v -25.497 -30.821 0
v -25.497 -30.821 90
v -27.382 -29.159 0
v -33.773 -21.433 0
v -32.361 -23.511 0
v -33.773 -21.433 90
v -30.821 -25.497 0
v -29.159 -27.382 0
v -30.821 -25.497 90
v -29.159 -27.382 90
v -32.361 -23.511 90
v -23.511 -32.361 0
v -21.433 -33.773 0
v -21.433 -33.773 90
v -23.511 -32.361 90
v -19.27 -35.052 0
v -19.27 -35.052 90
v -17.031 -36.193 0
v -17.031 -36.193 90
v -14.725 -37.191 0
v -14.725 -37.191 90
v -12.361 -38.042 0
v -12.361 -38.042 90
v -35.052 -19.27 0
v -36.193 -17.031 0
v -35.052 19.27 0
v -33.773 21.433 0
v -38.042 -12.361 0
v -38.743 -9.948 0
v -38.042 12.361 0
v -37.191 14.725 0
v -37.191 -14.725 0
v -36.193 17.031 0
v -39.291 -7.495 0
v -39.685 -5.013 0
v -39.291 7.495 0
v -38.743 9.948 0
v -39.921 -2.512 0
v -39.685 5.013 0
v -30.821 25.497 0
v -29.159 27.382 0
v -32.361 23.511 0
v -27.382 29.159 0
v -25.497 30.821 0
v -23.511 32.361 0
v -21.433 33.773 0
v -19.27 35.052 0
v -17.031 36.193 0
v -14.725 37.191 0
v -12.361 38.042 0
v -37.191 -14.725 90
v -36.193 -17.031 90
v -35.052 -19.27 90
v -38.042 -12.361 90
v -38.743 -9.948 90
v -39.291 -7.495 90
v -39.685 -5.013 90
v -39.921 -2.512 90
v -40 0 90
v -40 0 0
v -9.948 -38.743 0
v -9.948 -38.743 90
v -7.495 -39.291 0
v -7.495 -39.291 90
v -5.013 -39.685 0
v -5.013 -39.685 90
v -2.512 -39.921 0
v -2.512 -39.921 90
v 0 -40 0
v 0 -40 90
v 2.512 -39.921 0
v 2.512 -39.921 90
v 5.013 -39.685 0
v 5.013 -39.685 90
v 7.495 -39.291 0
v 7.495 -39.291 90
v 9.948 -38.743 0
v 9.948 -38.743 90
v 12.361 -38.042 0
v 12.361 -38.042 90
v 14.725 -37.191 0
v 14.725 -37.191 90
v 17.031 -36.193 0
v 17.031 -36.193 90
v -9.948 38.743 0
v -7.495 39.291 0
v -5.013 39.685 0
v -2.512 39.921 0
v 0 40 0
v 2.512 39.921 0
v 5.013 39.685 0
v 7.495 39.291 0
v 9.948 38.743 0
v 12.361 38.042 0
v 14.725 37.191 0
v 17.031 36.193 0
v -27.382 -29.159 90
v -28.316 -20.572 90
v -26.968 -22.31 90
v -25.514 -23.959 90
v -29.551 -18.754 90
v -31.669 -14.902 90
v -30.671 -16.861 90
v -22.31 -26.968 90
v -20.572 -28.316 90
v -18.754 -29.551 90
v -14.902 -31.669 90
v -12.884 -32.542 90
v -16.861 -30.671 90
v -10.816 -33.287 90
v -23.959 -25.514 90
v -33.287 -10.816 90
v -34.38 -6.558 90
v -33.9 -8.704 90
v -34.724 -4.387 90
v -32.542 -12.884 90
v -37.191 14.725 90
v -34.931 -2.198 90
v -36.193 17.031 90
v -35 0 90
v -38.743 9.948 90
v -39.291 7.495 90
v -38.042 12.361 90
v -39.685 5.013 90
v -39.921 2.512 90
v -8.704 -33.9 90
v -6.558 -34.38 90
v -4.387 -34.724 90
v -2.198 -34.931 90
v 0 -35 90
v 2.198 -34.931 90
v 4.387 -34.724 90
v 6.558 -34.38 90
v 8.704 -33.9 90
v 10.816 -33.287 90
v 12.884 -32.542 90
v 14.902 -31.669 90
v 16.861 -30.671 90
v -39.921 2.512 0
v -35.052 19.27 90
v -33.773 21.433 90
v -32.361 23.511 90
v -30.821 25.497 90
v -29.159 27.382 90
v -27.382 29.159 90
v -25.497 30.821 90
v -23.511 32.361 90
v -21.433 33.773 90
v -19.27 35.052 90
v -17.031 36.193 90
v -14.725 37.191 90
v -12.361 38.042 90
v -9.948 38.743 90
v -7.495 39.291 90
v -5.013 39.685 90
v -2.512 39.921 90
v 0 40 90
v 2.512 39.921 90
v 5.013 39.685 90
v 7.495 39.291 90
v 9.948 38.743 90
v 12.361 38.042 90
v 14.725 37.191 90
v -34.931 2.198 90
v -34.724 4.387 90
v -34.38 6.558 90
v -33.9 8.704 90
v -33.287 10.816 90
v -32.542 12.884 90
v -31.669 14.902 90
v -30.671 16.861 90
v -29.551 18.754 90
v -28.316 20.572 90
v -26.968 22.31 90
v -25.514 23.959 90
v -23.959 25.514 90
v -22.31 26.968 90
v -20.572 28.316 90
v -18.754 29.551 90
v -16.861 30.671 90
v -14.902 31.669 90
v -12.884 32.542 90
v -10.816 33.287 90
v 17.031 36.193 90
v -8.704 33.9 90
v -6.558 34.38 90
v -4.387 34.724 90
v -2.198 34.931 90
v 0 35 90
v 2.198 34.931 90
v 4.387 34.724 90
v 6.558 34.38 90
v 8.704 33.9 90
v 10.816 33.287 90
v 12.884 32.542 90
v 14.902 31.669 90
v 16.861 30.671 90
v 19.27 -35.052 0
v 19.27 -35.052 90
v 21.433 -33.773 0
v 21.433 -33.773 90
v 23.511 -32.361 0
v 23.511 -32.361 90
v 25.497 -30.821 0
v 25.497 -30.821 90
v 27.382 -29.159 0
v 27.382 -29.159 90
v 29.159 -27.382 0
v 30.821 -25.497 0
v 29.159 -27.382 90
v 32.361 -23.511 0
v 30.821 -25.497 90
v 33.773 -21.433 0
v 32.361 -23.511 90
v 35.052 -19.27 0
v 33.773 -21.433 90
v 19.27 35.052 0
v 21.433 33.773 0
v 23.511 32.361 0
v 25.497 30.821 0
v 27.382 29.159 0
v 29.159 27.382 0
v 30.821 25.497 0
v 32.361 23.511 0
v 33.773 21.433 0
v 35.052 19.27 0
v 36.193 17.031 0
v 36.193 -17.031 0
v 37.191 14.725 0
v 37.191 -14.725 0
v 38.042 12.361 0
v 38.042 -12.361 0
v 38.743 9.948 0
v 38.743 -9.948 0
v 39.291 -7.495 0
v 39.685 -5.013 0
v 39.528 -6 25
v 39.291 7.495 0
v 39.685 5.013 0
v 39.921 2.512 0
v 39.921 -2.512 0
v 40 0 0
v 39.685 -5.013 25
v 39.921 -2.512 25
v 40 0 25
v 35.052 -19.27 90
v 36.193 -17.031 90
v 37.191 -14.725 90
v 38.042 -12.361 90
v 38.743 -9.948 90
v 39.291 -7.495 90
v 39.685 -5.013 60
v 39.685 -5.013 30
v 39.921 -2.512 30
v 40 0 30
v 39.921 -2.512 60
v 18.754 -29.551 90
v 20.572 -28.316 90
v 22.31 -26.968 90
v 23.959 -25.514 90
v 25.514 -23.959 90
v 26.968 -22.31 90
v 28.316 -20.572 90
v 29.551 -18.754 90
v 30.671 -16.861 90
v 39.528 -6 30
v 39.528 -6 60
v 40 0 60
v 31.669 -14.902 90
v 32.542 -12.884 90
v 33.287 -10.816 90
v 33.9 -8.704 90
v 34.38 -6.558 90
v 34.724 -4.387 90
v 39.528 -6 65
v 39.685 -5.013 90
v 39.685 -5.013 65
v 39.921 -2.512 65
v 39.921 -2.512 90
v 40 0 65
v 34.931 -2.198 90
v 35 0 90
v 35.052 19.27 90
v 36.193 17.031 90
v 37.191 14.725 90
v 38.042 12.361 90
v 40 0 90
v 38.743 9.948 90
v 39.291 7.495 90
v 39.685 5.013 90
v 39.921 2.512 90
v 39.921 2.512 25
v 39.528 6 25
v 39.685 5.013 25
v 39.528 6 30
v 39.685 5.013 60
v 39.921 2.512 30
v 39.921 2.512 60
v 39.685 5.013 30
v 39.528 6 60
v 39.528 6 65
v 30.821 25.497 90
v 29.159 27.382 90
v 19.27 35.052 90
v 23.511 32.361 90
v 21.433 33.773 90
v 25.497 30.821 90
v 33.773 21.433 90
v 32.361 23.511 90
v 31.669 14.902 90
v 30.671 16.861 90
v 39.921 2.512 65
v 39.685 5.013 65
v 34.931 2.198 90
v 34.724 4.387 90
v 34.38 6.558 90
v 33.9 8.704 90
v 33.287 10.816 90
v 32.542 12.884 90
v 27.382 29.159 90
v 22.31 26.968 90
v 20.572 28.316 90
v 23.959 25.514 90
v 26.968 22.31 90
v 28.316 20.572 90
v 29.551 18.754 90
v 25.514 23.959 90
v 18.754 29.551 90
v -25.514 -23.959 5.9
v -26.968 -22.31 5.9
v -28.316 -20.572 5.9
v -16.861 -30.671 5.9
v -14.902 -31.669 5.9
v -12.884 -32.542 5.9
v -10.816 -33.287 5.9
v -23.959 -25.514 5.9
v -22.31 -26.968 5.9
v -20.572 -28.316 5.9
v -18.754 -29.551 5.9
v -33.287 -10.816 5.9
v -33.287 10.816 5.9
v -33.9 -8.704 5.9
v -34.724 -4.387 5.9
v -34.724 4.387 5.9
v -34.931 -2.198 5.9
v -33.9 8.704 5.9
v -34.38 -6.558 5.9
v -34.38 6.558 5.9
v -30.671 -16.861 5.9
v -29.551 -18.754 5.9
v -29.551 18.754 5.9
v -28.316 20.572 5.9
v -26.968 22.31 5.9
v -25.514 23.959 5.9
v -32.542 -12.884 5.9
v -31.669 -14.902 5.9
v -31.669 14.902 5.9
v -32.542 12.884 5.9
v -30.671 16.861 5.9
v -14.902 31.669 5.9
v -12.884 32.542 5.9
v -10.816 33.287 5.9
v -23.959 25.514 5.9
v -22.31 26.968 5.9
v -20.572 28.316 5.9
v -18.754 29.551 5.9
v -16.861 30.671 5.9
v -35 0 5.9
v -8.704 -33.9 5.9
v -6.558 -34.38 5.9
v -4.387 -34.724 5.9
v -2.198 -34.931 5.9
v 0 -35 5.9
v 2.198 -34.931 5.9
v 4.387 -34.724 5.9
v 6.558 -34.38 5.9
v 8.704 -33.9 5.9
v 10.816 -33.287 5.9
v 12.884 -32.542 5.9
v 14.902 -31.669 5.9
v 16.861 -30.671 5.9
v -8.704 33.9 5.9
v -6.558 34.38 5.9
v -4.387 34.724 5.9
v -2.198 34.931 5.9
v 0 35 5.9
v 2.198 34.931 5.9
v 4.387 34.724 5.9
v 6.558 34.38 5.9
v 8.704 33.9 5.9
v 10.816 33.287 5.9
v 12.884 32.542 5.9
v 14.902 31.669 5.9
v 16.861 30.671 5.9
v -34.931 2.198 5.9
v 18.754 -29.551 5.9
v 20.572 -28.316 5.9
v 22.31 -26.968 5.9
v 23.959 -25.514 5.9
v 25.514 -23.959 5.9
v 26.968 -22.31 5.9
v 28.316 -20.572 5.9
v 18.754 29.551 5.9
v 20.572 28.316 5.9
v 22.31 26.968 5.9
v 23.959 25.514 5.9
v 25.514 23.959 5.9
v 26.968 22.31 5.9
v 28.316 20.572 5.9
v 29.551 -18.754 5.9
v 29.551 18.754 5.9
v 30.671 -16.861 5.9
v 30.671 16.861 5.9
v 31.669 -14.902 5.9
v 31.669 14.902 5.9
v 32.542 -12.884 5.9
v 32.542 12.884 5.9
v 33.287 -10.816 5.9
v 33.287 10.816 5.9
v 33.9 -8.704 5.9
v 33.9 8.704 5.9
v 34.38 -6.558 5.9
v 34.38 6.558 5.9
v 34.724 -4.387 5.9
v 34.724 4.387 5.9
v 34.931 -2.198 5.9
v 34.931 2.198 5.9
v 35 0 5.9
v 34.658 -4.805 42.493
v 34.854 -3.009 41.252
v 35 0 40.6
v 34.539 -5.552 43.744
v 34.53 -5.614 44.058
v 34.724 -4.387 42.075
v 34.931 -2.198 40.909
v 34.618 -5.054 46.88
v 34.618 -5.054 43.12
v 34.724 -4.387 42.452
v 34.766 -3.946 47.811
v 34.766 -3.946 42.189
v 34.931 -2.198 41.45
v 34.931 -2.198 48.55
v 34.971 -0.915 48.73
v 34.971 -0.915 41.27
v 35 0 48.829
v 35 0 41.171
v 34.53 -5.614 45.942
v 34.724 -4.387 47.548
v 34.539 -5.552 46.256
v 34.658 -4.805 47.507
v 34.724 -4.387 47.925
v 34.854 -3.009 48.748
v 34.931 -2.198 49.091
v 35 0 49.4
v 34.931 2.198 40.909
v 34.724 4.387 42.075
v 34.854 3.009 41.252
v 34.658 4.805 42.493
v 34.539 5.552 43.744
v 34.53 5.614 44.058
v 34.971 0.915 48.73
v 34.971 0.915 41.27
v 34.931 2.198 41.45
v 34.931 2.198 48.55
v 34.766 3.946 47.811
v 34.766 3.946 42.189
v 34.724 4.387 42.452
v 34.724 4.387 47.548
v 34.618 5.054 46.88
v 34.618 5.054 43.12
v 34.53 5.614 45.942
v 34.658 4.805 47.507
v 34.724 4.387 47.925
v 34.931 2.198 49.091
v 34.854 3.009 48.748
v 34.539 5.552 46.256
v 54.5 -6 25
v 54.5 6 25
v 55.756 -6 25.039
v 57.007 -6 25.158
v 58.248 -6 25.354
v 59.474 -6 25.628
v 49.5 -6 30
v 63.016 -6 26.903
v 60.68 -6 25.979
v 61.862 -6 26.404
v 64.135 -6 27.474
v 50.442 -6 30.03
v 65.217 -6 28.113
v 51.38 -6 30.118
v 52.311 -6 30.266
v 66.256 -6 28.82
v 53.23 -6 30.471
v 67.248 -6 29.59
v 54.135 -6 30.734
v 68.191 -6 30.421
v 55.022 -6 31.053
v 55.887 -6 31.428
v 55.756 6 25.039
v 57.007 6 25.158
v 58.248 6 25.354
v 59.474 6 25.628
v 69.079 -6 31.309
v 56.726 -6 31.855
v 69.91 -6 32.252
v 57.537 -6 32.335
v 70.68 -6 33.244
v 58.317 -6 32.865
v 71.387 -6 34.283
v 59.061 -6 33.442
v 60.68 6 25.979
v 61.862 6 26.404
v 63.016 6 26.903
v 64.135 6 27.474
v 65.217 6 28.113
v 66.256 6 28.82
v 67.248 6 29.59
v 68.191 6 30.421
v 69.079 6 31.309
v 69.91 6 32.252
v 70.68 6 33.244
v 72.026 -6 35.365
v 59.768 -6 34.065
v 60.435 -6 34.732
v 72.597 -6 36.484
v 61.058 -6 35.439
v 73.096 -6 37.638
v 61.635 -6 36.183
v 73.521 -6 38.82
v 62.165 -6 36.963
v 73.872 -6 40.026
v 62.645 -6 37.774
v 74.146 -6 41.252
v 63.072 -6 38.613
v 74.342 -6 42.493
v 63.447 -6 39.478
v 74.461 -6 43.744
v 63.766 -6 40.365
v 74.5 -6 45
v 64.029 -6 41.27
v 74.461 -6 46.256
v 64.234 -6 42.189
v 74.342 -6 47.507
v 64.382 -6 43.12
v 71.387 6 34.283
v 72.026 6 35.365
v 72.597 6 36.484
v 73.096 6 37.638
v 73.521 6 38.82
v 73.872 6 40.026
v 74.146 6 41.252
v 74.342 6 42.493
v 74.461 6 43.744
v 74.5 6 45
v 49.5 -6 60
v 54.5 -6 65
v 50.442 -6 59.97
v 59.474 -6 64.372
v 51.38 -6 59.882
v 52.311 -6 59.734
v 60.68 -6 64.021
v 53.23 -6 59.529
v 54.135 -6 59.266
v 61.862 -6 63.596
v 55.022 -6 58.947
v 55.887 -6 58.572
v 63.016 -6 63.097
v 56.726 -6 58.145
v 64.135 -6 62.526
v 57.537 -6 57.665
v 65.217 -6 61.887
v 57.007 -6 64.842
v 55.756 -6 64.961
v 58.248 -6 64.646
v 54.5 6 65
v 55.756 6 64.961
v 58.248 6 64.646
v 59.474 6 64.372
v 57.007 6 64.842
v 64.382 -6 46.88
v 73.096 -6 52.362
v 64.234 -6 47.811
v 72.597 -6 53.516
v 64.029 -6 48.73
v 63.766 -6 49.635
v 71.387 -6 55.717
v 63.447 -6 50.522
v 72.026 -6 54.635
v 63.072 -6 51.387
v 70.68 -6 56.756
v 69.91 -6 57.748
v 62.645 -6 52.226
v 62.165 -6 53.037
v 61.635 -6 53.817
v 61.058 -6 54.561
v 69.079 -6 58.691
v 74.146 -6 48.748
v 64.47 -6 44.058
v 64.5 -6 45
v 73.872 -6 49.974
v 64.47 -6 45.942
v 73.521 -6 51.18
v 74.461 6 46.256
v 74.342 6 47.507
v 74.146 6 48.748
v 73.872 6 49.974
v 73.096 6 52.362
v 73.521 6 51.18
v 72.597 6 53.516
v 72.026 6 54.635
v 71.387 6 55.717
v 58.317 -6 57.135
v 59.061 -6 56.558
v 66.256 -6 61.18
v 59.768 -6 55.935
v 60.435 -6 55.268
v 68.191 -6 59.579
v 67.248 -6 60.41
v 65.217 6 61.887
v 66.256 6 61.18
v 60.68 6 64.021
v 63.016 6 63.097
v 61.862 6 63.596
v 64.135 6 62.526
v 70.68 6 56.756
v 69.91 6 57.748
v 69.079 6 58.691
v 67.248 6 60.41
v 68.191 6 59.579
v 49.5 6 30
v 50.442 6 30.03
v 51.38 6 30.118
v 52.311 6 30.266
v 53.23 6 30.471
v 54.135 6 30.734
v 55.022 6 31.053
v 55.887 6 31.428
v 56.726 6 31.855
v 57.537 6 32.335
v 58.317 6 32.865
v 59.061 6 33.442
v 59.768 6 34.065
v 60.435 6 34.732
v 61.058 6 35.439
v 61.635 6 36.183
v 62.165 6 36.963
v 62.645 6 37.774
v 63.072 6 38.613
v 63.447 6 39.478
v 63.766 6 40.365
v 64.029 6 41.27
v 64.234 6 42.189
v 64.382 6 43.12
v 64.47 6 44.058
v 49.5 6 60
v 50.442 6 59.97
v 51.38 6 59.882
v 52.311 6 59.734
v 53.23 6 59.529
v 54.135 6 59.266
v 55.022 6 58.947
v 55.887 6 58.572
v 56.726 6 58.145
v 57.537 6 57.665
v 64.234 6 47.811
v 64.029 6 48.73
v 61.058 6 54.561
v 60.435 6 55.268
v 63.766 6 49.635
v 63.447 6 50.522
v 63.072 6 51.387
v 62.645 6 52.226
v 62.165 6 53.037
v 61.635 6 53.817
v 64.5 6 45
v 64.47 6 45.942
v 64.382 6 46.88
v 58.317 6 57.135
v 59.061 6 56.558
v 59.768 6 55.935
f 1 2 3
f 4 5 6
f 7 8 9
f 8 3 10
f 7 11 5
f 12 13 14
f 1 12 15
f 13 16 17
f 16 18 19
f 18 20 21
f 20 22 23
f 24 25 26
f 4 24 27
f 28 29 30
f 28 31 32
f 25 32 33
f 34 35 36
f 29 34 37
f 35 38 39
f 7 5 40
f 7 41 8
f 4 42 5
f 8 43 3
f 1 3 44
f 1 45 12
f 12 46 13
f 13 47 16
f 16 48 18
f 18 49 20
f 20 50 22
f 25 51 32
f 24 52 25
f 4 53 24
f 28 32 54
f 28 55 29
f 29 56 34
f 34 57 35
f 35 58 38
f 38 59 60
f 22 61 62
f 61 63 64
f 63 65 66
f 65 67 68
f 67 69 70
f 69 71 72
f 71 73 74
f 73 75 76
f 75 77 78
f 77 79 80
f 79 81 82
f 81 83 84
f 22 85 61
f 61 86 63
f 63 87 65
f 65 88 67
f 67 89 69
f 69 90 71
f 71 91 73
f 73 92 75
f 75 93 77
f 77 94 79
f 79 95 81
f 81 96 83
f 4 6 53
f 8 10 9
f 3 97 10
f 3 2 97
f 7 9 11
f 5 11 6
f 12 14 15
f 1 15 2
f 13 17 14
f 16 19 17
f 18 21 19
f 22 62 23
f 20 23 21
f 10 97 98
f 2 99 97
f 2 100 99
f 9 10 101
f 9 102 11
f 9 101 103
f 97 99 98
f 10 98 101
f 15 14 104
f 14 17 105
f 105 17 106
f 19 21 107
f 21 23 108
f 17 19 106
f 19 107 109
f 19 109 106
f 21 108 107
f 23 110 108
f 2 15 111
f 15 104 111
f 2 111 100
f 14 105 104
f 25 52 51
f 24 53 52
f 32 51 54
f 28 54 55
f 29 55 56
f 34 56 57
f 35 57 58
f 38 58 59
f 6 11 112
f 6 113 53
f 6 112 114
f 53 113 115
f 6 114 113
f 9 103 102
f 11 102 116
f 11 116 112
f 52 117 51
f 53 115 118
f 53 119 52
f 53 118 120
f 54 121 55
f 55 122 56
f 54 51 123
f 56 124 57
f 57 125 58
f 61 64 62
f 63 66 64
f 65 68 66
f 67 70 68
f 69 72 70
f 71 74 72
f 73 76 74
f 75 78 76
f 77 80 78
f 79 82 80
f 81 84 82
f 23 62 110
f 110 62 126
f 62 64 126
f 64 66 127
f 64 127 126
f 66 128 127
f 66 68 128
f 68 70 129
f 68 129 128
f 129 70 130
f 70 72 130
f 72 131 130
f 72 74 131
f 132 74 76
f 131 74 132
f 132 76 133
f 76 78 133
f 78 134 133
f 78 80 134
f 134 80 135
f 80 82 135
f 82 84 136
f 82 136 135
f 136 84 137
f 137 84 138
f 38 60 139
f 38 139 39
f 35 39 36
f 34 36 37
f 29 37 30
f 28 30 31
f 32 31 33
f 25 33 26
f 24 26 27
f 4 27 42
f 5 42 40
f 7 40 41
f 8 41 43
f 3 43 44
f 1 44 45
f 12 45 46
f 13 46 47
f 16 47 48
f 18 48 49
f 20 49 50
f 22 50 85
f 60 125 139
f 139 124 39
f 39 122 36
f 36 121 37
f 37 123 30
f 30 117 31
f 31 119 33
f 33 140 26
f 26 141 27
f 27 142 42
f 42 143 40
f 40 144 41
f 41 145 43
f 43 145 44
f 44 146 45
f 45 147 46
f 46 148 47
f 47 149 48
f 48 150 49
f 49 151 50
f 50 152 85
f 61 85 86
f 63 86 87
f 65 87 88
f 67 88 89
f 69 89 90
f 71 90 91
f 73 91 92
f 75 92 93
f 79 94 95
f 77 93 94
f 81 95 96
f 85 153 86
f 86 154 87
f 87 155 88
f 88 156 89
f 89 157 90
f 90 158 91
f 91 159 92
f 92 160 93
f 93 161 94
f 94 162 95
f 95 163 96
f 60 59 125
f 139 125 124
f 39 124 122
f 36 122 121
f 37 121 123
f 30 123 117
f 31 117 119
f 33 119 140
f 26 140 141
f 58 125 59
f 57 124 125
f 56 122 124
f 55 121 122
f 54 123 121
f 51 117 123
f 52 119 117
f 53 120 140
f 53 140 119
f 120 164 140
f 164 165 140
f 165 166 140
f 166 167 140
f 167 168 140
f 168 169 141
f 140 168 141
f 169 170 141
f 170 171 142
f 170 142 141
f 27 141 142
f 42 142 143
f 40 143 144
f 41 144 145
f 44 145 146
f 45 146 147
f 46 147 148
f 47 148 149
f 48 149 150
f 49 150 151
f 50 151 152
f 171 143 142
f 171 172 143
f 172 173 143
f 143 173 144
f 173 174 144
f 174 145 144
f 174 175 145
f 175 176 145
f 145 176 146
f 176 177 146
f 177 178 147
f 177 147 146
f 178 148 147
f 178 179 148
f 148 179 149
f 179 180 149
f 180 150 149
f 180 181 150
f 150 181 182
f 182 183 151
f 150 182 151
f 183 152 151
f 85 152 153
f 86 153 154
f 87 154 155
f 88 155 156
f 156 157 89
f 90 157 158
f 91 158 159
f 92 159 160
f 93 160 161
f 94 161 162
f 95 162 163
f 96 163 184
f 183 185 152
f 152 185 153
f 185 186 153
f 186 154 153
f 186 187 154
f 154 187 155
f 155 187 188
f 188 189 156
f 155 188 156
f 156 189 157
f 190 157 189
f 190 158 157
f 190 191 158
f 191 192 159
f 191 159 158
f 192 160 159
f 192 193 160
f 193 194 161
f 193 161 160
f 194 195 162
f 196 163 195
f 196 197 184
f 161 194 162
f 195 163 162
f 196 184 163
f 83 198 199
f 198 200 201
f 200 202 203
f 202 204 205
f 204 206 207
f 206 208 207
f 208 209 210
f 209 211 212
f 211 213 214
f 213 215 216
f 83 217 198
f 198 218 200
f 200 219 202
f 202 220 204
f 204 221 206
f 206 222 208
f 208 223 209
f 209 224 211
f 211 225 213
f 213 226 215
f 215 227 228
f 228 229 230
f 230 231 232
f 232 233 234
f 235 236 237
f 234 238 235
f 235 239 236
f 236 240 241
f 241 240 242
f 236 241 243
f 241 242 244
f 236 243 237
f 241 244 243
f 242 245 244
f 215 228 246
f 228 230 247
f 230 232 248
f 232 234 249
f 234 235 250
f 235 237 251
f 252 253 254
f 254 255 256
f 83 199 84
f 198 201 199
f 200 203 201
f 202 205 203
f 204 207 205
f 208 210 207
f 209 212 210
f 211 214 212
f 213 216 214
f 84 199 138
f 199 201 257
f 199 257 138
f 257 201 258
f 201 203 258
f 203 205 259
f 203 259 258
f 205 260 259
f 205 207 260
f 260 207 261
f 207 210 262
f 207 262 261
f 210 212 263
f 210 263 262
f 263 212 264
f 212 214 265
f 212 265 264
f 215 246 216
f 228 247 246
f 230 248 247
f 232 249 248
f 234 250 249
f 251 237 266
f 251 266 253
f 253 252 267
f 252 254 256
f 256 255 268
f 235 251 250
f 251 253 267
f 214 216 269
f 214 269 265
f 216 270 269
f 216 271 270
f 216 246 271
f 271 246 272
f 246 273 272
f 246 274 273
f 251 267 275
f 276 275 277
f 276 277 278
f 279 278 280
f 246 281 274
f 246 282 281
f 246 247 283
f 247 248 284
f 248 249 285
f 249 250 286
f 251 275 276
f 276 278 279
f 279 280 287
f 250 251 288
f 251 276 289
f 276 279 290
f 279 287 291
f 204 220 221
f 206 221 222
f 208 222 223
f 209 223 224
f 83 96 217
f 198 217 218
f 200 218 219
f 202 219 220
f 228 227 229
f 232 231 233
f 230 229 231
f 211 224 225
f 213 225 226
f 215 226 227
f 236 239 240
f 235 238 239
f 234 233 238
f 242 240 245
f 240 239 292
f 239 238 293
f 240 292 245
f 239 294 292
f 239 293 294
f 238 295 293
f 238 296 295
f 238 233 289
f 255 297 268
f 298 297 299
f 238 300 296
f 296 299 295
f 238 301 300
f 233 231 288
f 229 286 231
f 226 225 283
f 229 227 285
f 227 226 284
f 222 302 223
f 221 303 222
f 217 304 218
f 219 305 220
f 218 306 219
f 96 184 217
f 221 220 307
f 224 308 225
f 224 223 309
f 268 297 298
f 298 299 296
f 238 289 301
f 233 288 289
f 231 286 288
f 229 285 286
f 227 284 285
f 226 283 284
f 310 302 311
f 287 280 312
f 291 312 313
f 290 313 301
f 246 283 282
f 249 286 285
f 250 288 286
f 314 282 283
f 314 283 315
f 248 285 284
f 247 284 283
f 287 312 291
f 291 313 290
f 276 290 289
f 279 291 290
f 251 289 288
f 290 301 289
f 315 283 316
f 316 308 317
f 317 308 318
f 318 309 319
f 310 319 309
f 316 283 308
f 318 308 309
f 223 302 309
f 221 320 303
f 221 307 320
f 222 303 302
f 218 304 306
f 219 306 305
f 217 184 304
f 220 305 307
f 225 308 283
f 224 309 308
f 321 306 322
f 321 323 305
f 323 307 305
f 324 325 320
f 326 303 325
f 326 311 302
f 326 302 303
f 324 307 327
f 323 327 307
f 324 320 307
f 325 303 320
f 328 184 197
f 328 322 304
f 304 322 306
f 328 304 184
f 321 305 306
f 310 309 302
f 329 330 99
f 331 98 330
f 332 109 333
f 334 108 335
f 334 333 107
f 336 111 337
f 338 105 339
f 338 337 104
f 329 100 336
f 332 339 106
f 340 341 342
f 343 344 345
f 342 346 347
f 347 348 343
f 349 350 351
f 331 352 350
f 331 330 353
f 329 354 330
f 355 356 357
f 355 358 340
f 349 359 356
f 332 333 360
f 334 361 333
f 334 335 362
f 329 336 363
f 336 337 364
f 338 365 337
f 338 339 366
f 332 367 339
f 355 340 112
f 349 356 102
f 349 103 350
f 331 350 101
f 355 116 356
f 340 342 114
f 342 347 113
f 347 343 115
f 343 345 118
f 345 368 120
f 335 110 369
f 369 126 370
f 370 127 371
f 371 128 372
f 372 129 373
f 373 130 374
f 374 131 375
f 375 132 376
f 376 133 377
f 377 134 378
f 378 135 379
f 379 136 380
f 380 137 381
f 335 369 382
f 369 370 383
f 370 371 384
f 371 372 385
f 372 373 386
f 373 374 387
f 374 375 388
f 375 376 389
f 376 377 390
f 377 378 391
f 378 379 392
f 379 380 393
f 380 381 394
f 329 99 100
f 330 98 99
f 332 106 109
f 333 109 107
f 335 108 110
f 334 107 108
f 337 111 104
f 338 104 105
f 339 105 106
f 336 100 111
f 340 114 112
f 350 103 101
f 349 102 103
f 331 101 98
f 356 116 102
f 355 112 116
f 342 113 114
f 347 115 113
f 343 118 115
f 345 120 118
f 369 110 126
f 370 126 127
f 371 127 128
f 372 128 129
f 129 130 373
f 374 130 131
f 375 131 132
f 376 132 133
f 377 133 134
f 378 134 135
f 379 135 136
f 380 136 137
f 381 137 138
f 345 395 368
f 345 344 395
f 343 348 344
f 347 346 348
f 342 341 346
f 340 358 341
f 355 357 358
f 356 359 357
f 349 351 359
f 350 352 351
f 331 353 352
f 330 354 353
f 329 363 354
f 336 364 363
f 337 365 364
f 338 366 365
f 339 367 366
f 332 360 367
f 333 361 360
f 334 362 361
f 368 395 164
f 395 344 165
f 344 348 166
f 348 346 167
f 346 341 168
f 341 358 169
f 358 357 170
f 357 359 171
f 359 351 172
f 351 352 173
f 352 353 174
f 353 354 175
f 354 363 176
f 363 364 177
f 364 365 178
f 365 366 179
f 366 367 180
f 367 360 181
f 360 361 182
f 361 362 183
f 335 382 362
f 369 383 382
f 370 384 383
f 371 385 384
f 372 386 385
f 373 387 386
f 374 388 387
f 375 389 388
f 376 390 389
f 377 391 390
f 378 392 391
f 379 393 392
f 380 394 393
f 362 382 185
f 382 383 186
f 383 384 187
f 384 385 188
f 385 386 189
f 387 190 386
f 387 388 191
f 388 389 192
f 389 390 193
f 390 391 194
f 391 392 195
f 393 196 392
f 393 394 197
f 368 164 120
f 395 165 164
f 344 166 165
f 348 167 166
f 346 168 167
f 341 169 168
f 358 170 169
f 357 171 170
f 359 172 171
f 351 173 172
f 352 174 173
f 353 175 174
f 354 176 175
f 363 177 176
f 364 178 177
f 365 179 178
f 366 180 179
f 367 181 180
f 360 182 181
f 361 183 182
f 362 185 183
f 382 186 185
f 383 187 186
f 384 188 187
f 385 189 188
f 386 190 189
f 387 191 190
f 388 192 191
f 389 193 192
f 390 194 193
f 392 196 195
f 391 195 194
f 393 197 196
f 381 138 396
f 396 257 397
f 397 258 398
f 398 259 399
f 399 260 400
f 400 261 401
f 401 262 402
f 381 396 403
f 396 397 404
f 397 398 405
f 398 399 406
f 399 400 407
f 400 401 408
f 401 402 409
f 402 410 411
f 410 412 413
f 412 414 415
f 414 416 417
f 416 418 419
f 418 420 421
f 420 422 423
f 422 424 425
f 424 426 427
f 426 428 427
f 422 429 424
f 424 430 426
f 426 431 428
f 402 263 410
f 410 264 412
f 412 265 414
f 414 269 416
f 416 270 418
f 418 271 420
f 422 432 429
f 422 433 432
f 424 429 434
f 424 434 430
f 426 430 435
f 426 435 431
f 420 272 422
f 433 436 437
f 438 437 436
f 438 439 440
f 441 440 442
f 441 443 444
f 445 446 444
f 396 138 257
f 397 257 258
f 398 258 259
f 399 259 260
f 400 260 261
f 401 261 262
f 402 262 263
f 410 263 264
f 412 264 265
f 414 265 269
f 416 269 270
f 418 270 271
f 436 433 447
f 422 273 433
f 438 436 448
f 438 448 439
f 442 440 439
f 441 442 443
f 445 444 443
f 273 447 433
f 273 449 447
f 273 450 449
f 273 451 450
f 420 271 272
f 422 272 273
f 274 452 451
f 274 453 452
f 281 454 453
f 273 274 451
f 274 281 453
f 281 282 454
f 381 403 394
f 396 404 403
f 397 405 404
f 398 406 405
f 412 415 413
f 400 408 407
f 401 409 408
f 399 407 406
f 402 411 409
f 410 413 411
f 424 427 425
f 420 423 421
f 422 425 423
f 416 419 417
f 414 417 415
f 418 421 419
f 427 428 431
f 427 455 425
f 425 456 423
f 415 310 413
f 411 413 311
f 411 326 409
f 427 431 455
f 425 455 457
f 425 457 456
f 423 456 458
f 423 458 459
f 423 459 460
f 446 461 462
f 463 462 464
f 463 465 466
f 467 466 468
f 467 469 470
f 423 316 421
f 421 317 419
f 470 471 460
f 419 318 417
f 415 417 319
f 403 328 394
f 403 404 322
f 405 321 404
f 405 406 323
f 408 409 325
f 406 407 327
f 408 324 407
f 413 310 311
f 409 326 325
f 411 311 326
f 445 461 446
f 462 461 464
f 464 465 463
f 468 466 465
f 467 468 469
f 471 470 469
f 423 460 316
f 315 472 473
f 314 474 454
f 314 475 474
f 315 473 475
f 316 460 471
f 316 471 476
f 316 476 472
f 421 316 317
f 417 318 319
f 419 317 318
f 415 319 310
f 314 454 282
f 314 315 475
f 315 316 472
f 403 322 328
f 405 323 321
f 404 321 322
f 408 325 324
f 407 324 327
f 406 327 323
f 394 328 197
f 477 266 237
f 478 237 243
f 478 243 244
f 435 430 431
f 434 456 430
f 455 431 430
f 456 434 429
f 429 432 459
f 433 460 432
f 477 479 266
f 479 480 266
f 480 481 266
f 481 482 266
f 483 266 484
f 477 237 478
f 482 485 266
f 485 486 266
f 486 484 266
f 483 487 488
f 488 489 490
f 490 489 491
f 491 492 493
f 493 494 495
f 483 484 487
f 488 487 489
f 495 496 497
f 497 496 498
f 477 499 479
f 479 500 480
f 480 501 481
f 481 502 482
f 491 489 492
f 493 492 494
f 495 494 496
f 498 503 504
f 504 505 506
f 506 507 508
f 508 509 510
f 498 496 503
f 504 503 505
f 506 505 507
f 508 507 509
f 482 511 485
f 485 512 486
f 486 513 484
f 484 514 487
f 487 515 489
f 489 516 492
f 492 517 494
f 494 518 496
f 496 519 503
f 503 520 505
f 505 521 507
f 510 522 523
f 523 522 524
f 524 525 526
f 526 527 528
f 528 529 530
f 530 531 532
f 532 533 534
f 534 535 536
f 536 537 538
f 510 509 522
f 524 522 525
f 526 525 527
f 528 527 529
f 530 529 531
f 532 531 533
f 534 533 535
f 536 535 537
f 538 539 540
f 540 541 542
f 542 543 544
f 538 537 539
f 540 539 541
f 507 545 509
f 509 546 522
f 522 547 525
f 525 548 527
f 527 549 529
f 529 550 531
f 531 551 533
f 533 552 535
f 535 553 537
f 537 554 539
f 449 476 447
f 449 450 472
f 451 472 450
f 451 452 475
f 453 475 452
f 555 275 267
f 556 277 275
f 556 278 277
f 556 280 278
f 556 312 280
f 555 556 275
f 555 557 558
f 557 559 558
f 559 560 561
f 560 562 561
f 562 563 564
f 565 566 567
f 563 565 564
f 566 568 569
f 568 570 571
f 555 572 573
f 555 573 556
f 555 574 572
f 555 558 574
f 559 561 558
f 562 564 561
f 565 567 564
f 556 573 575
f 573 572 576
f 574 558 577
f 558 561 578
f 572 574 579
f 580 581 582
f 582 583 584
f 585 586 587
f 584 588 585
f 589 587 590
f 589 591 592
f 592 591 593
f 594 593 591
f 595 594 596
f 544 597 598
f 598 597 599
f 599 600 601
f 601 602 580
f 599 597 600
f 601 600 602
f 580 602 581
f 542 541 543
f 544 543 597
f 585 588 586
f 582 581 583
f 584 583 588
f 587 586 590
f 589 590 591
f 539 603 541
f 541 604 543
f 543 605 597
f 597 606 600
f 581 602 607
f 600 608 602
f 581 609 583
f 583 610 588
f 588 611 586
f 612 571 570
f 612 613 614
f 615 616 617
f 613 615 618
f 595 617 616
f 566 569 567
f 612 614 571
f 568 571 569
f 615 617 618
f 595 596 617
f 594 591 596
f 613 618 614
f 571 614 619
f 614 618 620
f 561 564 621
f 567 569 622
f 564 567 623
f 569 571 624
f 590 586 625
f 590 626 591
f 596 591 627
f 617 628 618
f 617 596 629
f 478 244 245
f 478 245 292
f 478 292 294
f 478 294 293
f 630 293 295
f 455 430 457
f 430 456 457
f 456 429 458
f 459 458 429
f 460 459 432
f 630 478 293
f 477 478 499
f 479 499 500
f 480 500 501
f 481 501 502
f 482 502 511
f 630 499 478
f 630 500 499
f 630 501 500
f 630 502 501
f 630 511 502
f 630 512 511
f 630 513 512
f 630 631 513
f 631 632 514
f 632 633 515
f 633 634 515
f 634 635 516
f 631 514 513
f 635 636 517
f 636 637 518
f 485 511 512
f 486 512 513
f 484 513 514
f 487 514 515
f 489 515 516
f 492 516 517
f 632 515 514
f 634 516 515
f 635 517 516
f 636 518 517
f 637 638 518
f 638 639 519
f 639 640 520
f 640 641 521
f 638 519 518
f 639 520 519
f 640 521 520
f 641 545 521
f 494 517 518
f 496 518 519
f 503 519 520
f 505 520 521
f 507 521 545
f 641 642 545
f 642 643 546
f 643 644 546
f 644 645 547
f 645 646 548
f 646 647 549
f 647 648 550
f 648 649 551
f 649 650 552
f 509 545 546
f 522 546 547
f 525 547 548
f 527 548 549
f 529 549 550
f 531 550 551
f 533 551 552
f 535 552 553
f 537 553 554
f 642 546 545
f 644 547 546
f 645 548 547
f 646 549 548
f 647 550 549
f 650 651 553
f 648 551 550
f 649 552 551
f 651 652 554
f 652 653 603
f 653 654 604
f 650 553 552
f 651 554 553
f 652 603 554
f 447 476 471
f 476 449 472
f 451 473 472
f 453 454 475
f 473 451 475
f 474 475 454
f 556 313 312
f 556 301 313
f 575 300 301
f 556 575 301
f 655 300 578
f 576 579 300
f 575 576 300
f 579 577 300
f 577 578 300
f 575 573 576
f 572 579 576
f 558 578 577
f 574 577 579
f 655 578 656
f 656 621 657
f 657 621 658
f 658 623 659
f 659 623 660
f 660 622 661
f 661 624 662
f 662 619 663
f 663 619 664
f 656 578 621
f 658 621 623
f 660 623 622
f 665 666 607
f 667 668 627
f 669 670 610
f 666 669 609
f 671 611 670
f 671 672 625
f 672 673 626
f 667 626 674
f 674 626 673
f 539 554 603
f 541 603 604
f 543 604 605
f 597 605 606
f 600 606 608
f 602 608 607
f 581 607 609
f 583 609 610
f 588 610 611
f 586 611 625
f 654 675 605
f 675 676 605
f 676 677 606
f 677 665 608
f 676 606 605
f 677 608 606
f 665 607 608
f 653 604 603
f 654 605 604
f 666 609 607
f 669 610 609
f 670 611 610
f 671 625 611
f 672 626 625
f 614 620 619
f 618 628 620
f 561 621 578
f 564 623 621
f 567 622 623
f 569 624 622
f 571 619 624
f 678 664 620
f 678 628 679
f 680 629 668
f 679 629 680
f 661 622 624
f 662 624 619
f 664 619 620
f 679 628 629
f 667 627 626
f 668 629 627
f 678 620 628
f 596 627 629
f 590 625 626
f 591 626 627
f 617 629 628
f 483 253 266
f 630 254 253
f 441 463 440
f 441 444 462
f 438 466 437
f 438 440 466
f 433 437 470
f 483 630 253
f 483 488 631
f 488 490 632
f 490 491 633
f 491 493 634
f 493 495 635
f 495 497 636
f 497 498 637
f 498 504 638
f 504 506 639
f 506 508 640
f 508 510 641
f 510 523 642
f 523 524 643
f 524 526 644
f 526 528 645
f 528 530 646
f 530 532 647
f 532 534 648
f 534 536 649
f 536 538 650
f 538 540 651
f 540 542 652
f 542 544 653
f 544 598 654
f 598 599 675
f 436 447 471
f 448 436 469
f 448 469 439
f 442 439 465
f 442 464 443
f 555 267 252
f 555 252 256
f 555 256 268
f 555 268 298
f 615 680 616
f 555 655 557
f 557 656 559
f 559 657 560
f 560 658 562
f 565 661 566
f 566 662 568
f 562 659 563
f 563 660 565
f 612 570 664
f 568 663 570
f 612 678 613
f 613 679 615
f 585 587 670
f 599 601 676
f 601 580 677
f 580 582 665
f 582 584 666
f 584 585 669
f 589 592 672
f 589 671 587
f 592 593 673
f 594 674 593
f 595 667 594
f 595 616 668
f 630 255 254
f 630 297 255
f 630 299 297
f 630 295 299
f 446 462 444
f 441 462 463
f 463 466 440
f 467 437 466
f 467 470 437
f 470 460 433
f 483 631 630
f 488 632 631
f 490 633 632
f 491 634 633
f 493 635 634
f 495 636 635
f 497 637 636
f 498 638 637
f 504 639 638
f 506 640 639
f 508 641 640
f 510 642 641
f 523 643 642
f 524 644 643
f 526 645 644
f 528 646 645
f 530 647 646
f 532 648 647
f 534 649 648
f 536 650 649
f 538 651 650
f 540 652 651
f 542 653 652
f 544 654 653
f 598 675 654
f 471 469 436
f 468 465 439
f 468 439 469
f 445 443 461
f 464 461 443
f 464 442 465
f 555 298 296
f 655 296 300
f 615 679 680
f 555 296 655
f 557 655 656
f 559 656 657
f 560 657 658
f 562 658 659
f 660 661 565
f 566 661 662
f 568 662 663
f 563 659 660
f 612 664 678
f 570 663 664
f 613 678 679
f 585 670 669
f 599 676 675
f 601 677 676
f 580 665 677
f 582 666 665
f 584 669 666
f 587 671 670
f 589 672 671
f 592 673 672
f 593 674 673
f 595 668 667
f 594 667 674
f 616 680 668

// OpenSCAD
$fn = 100;

module d2(width, height){
    r = height/2;
    rect_w = width - r;
    union(){
        translate([0, -height/2]) square([rect_w, height]);
        translate([rect_w, 0]) circle(r=r);
    }
}

module handle(){
    outer_w = 35;
    outer_h = 40;
    inner_w = 25;
    inner_h = 30;
    depth = 12;
    difference(){
        rotate([90,0,0]) linear_extrude(height=depth, center=true) d2(outer_w, outer_h);
        rotate([90,0,0]) linear_extrude(height=depth+0.2, center=true) d2(inner_w, inner_h);
    }
}

module mug(){
    difference(){
        cylinder(h=90, r=40);
        translate([0,0,6-0.1]) cylinder(h=84+0.2, r=35);
    }
}

union(){
    mug();
    translate([40-0.5,0,45]) handle();
}
